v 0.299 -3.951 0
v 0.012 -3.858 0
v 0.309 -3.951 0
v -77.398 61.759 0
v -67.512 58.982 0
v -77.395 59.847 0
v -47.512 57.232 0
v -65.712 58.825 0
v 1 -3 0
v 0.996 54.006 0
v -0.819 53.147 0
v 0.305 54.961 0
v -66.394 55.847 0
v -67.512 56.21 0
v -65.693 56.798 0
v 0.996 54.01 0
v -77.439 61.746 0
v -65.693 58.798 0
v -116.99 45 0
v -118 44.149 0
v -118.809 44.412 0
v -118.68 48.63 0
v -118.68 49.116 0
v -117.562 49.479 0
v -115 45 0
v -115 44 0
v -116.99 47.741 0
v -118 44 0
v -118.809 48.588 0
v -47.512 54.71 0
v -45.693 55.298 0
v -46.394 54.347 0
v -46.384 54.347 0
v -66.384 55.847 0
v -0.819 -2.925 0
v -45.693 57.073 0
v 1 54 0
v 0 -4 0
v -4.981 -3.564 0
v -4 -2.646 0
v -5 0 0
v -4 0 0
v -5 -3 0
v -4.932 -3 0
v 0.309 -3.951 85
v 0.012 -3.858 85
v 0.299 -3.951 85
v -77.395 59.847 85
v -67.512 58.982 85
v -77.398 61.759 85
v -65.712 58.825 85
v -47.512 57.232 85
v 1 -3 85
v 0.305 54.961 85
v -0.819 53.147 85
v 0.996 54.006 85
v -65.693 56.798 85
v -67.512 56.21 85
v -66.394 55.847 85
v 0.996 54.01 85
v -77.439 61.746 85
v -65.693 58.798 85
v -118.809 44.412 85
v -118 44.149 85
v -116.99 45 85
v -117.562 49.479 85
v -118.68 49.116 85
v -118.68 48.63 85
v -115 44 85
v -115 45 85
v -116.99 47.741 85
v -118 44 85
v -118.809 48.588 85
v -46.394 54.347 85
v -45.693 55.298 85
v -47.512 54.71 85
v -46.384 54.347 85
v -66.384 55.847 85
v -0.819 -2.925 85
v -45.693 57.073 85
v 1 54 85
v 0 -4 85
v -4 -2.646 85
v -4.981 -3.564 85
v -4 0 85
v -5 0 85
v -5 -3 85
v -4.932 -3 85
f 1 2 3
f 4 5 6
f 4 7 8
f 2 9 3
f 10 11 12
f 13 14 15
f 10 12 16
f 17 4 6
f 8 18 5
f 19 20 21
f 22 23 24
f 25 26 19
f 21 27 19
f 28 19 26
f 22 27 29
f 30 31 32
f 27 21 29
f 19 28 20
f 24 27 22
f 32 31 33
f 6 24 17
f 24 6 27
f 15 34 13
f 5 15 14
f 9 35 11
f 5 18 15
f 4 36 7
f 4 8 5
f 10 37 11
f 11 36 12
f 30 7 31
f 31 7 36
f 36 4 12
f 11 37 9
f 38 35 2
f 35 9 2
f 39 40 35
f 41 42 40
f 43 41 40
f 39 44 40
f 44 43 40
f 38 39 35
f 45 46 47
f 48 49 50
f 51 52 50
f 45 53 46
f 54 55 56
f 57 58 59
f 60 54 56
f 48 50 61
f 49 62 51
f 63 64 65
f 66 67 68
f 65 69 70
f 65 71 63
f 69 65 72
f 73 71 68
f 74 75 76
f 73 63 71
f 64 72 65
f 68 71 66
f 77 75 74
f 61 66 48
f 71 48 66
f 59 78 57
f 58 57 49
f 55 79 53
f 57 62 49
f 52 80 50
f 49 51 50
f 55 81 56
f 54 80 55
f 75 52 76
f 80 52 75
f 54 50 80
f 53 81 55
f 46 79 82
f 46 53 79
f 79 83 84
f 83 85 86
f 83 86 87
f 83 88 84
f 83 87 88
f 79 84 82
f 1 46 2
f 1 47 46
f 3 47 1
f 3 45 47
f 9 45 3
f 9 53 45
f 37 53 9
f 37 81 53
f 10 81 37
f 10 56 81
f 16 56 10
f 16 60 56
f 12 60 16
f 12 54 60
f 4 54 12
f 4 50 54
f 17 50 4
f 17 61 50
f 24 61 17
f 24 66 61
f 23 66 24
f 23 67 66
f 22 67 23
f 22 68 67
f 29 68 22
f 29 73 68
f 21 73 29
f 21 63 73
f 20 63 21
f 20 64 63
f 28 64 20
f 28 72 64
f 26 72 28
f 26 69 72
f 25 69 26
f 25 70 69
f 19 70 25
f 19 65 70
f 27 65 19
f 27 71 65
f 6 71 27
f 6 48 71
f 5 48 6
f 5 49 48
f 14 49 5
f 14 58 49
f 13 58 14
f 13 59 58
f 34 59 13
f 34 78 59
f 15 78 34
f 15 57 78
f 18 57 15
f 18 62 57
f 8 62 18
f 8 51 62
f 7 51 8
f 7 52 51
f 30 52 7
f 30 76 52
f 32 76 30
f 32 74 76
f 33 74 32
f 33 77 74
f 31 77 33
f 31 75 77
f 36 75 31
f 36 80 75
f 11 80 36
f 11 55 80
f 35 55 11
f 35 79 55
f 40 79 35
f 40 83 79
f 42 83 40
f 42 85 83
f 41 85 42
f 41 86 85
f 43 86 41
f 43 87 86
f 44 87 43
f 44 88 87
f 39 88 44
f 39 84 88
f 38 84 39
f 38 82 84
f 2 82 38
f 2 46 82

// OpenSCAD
THICKNESS = .01;
BOTTOM_DIVOT = 3;

linear_extrude(85) {
  translate([0, -4, 0])
  rotate([0, 0, 85])
  square([1, 5]);

  translate([-5, -3, 0])
  square([1, 3]);

  translate([-118, 45, 0])
  rotate([0, 0, 270])
  square([1, 3]);

  minkowski() {
    union() {
      translate([-THICKNESS, -3, 0])
      square([THICKNESS, 57]);

      translate([-THICKNESS/2, 54, 0])
      rotate([0, 0, 85])
      square([THICKNESS, 78]);

      translate([0, 54, 0])
      translate([-78 * sin(85), 78 * cos(85), 0])
      union() {
        translate([11, -4 , 0])
        square([THICKNESS, 2]);

        translate([11 + 20, -5.5 , 0])
        square([THICKNESS, 2]);

        rotate([0, 0, 85 + 22])
        square([THICKNESS, 42]);
      }

      translate([-118, 48 - BOTTOM_DIVOT, 0])
      square([THICKNESS, BOTTOM_DIVOT]);
    }
    circle(r=1);
  }
}
